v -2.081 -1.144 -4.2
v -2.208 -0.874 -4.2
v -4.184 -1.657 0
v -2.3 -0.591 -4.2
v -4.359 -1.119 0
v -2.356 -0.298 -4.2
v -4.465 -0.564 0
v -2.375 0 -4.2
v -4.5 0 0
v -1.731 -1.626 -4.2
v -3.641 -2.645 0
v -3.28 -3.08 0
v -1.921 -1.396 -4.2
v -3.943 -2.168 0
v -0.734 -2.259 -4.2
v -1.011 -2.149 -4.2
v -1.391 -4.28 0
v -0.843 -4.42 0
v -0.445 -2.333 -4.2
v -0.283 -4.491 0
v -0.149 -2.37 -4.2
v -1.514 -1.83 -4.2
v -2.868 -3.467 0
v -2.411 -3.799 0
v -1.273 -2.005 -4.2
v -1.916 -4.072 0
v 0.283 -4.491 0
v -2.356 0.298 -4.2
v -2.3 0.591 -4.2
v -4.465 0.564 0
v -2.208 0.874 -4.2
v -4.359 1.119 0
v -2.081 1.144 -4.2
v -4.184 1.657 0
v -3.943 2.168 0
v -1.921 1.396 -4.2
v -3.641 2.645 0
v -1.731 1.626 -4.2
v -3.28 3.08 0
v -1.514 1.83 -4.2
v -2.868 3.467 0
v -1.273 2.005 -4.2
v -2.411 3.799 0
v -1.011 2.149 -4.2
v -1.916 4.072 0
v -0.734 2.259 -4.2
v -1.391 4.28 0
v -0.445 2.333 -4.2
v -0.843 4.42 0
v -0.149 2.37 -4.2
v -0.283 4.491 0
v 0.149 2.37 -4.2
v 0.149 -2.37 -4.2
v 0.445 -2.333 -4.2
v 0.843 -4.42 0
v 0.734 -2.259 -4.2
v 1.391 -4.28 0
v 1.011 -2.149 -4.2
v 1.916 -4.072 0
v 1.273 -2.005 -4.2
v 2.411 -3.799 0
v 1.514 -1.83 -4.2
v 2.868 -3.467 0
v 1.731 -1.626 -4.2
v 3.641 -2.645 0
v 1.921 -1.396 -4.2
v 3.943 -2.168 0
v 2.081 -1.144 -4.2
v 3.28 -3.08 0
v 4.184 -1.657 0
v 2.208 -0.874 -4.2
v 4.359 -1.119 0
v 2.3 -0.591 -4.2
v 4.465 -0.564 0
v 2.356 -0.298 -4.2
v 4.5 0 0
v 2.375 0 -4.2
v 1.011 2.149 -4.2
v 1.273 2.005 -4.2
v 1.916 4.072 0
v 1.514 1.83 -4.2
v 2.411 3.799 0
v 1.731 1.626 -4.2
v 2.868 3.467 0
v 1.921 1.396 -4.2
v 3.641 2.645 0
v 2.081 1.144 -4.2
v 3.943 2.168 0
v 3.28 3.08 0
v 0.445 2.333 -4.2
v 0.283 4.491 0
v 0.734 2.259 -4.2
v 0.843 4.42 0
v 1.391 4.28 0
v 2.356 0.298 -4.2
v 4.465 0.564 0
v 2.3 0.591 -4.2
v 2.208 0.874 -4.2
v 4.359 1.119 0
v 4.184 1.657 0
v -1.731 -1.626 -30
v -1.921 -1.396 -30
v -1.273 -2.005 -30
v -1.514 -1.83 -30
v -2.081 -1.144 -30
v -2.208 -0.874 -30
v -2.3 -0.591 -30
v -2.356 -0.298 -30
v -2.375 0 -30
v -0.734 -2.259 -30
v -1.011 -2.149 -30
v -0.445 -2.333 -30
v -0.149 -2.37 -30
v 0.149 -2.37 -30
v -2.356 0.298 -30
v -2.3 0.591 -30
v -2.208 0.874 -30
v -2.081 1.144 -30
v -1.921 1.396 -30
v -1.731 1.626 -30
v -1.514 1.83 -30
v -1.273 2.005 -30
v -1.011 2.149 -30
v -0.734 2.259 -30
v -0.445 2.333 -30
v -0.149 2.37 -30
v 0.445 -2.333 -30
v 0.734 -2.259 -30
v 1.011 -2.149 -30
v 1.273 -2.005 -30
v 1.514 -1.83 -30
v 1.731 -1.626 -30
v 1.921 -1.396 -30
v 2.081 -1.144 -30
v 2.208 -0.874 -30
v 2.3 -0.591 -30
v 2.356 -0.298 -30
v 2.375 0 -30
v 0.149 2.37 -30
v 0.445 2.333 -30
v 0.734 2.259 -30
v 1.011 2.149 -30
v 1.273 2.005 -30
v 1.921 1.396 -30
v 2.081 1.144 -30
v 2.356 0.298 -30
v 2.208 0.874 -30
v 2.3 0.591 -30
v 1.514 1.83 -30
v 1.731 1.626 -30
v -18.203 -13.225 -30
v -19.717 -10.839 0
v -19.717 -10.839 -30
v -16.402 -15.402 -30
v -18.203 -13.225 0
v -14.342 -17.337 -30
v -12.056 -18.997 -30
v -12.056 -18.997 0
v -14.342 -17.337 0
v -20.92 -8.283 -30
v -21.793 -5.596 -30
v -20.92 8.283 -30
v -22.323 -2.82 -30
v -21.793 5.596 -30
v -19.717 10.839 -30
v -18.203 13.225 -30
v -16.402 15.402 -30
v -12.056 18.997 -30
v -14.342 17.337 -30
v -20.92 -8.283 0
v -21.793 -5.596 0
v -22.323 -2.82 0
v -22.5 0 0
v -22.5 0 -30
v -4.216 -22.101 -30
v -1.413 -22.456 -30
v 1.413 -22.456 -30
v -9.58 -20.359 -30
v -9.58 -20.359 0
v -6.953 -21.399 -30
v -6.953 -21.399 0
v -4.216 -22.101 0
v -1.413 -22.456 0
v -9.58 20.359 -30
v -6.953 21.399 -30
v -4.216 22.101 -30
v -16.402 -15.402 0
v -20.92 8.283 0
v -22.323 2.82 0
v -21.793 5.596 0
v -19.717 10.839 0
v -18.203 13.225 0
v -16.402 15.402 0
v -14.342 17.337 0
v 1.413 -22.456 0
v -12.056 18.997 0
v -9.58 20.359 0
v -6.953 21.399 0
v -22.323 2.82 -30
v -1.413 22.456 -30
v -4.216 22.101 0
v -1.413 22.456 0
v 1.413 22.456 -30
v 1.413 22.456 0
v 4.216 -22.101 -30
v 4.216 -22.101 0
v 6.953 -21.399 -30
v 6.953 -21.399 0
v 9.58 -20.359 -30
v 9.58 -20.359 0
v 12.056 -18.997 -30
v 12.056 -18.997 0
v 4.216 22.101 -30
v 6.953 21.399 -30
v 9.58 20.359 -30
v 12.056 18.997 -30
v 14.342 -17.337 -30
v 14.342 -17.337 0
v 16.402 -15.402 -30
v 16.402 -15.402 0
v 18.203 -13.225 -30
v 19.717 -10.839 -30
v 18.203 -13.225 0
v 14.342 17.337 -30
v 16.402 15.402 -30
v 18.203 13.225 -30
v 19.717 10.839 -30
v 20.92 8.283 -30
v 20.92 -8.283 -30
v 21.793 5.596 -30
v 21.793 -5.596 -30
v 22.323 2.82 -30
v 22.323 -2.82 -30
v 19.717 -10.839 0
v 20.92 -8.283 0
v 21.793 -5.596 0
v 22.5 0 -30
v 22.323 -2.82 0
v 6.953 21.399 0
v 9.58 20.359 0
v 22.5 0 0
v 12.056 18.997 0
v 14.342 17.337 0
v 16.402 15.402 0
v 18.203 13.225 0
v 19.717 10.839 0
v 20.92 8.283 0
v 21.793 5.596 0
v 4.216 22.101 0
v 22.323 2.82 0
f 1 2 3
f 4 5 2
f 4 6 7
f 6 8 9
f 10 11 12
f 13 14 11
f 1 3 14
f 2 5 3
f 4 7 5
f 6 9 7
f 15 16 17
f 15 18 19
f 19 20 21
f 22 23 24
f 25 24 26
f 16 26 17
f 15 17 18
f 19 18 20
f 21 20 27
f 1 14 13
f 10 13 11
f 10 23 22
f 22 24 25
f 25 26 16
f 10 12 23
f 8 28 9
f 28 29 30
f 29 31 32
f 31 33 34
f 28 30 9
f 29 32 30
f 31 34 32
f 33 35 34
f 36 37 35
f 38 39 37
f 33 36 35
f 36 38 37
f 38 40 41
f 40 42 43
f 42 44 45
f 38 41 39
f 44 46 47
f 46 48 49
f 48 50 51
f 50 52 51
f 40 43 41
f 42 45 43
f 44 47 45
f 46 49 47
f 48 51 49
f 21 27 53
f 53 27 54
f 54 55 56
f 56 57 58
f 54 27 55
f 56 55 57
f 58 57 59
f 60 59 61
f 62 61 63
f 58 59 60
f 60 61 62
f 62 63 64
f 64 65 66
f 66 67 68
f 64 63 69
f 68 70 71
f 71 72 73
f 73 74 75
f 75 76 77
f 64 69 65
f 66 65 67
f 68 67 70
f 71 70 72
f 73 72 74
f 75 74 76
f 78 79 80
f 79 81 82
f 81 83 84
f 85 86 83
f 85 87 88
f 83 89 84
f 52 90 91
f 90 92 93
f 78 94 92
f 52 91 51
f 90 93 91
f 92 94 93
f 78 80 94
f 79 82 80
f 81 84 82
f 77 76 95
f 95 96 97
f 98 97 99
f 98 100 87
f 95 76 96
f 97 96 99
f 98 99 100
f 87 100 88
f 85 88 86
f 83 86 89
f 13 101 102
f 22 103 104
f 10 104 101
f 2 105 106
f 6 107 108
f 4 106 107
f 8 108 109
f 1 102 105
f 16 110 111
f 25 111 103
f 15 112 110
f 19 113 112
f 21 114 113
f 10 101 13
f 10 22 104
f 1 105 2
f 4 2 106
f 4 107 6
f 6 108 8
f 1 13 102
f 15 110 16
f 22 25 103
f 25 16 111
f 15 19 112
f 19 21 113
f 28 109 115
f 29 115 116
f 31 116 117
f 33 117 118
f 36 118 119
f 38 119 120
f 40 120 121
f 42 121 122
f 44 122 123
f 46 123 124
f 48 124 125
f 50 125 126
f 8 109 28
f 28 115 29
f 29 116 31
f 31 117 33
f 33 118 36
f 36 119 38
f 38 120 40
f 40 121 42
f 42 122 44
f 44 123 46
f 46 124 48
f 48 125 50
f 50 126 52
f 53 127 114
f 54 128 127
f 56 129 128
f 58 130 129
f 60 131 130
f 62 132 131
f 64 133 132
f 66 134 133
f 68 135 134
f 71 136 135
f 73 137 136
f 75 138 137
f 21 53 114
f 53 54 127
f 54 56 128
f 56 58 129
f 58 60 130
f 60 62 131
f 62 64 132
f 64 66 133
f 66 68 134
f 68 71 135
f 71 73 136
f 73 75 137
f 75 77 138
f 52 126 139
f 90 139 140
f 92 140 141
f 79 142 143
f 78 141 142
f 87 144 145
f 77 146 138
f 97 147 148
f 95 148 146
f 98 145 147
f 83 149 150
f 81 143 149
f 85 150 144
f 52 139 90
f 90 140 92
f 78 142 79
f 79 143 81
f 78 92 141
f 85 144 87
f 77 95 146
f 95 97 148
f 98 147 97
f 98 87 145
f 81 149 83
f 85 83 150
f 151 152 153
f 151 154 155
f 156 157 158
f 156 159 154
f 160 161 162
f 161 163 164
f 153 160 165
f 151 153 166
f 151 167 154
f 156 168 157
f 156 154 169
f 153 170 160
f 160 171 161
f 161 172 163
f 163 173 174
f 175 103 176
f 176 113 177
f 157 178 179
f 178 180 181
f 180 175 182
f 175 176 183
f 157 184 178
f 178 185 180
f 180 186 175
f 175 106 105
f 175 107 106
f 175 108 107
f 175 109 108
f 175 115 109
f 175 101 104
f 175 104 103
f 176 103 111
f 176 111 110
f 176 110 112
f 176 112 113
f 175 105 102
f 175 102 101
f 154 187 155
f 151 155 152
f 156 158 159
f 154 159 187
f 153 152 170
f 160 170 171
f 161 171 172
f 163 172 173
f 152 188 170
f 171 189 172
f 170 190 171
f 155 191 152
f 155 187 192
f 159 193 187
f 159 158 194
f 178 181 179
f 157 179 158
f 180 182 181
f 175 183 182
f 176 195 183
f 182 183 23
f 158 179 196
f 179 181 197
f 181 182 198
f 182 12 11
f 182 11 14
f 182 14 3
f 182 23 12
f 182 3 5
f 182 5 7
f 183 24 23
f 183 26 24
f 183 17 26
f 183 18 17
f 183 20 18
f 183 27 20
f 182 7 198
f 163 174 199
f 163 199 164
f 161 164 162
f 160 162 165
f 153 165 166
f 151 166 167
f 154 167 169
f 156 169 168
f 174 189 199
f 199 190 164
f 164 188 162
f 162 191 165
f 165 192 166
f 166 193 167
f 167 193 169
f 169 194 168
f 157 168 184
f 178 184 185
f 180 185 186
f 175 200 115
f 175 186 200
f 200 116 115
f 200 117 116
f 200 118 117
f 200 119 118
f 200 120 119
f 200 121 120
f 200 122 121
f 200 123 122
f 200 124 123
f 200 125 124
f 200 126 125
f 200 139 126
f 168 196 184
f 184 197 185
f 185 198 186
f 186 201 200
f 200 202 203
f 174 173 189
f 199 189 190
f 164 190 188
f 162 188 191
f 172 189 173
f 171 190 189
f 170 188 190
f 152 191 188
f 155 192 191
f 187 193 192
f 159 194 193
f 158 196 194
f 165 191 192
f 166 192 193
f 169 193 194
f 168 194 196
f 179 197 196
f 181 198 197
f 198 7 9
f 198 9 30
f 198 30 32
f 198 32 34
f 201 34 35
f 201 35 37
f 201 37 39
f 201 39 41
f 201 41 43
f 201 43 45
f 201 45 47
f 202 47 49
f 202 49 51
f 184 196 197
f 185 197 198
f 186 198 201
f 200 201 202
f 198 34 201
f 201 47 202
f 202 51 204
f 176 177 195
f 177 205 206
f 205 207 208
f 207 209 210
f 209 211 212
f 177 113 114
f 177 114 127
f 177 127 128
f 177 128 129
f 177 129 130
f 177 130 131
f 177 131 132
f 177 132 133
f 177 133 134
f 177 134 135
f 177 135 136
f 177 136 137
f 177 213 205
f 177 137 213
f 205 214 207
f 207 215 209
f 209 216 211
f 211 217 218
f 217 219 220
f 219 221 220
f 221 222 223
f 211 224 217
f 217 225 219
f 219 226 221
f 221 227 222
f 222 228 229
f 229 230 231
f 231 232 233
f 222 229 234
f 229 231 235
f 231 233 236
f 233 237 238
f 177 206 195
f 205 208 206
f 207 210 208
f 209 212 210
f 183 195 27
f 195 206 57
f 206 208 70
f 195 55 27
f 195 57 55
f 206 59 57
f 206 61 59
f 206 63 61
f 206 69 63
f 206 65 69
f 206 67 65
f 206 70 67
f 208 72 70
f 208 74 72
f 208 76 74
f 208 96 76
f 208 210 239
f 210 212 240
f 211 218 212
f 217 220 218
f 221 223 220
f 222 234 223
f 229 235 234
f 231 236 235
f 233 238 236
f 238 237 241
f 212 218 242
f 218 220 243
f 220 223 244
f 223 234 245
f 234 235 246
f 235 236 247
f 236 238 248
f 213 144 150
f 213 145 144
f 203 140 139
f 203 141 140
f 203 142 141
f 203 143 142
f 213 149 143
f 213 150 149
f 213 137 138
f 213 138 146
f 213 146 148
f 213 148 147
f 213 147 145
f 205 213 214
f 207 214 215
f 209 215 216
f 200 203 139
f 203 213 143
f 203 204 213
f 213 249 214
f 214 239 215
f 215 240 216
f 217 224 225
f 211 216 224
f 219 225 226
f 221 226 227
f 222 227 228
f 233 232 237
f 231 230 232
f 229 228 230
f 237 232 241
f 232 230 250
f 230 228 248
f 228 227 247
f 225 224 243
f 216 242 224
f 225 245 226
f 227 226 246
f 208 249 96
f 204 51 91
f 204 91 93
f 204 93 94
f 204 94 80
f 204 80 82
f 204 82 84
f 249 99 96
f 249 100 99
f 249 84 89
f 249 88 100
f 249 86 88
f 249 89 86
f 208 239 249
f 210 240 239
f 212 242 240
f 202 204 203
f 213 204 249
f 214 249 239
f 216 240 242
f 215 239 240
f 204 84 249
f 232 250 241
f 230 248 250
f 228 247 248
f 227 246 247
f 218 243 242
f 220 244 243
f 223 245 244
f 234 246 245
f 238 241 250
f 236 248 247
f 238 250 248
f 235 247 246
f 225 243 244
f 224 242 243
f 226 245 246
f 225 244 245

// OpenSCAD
$fn = 50;


difference() {
	union() {
		translate(v = [0, 0, -30.0000000000]) {
			cylinder(h = 30, r = 22.5000000000);
		}
	}
	union() {
		translate(v = [0, 0, 0]) {
			rotate(a = [0, 0, 0]) {
				difference() {
					union() {
						translate(v = [0, 0, -33.0000000000]) {
							cylinder(h = 33, r = 2.2500000000);
						}
						translate(v = [0, 0, -4.2000000000]) {
							cylinder(h = 4.2000000000, r1 = 2.3750000000, r2 = 4.5000000000);
						}
						translate(v = [0, 0, -33.0000000000]) {
							cylinder(h = 33, r = 2.3750000000);
						}
						translate(v = [0, 0, -33.0000000000]) {
							cylinder(h = 33, r = 2.2500000000);
						}
					}
					union();
				}
			}
		}
	}
}
